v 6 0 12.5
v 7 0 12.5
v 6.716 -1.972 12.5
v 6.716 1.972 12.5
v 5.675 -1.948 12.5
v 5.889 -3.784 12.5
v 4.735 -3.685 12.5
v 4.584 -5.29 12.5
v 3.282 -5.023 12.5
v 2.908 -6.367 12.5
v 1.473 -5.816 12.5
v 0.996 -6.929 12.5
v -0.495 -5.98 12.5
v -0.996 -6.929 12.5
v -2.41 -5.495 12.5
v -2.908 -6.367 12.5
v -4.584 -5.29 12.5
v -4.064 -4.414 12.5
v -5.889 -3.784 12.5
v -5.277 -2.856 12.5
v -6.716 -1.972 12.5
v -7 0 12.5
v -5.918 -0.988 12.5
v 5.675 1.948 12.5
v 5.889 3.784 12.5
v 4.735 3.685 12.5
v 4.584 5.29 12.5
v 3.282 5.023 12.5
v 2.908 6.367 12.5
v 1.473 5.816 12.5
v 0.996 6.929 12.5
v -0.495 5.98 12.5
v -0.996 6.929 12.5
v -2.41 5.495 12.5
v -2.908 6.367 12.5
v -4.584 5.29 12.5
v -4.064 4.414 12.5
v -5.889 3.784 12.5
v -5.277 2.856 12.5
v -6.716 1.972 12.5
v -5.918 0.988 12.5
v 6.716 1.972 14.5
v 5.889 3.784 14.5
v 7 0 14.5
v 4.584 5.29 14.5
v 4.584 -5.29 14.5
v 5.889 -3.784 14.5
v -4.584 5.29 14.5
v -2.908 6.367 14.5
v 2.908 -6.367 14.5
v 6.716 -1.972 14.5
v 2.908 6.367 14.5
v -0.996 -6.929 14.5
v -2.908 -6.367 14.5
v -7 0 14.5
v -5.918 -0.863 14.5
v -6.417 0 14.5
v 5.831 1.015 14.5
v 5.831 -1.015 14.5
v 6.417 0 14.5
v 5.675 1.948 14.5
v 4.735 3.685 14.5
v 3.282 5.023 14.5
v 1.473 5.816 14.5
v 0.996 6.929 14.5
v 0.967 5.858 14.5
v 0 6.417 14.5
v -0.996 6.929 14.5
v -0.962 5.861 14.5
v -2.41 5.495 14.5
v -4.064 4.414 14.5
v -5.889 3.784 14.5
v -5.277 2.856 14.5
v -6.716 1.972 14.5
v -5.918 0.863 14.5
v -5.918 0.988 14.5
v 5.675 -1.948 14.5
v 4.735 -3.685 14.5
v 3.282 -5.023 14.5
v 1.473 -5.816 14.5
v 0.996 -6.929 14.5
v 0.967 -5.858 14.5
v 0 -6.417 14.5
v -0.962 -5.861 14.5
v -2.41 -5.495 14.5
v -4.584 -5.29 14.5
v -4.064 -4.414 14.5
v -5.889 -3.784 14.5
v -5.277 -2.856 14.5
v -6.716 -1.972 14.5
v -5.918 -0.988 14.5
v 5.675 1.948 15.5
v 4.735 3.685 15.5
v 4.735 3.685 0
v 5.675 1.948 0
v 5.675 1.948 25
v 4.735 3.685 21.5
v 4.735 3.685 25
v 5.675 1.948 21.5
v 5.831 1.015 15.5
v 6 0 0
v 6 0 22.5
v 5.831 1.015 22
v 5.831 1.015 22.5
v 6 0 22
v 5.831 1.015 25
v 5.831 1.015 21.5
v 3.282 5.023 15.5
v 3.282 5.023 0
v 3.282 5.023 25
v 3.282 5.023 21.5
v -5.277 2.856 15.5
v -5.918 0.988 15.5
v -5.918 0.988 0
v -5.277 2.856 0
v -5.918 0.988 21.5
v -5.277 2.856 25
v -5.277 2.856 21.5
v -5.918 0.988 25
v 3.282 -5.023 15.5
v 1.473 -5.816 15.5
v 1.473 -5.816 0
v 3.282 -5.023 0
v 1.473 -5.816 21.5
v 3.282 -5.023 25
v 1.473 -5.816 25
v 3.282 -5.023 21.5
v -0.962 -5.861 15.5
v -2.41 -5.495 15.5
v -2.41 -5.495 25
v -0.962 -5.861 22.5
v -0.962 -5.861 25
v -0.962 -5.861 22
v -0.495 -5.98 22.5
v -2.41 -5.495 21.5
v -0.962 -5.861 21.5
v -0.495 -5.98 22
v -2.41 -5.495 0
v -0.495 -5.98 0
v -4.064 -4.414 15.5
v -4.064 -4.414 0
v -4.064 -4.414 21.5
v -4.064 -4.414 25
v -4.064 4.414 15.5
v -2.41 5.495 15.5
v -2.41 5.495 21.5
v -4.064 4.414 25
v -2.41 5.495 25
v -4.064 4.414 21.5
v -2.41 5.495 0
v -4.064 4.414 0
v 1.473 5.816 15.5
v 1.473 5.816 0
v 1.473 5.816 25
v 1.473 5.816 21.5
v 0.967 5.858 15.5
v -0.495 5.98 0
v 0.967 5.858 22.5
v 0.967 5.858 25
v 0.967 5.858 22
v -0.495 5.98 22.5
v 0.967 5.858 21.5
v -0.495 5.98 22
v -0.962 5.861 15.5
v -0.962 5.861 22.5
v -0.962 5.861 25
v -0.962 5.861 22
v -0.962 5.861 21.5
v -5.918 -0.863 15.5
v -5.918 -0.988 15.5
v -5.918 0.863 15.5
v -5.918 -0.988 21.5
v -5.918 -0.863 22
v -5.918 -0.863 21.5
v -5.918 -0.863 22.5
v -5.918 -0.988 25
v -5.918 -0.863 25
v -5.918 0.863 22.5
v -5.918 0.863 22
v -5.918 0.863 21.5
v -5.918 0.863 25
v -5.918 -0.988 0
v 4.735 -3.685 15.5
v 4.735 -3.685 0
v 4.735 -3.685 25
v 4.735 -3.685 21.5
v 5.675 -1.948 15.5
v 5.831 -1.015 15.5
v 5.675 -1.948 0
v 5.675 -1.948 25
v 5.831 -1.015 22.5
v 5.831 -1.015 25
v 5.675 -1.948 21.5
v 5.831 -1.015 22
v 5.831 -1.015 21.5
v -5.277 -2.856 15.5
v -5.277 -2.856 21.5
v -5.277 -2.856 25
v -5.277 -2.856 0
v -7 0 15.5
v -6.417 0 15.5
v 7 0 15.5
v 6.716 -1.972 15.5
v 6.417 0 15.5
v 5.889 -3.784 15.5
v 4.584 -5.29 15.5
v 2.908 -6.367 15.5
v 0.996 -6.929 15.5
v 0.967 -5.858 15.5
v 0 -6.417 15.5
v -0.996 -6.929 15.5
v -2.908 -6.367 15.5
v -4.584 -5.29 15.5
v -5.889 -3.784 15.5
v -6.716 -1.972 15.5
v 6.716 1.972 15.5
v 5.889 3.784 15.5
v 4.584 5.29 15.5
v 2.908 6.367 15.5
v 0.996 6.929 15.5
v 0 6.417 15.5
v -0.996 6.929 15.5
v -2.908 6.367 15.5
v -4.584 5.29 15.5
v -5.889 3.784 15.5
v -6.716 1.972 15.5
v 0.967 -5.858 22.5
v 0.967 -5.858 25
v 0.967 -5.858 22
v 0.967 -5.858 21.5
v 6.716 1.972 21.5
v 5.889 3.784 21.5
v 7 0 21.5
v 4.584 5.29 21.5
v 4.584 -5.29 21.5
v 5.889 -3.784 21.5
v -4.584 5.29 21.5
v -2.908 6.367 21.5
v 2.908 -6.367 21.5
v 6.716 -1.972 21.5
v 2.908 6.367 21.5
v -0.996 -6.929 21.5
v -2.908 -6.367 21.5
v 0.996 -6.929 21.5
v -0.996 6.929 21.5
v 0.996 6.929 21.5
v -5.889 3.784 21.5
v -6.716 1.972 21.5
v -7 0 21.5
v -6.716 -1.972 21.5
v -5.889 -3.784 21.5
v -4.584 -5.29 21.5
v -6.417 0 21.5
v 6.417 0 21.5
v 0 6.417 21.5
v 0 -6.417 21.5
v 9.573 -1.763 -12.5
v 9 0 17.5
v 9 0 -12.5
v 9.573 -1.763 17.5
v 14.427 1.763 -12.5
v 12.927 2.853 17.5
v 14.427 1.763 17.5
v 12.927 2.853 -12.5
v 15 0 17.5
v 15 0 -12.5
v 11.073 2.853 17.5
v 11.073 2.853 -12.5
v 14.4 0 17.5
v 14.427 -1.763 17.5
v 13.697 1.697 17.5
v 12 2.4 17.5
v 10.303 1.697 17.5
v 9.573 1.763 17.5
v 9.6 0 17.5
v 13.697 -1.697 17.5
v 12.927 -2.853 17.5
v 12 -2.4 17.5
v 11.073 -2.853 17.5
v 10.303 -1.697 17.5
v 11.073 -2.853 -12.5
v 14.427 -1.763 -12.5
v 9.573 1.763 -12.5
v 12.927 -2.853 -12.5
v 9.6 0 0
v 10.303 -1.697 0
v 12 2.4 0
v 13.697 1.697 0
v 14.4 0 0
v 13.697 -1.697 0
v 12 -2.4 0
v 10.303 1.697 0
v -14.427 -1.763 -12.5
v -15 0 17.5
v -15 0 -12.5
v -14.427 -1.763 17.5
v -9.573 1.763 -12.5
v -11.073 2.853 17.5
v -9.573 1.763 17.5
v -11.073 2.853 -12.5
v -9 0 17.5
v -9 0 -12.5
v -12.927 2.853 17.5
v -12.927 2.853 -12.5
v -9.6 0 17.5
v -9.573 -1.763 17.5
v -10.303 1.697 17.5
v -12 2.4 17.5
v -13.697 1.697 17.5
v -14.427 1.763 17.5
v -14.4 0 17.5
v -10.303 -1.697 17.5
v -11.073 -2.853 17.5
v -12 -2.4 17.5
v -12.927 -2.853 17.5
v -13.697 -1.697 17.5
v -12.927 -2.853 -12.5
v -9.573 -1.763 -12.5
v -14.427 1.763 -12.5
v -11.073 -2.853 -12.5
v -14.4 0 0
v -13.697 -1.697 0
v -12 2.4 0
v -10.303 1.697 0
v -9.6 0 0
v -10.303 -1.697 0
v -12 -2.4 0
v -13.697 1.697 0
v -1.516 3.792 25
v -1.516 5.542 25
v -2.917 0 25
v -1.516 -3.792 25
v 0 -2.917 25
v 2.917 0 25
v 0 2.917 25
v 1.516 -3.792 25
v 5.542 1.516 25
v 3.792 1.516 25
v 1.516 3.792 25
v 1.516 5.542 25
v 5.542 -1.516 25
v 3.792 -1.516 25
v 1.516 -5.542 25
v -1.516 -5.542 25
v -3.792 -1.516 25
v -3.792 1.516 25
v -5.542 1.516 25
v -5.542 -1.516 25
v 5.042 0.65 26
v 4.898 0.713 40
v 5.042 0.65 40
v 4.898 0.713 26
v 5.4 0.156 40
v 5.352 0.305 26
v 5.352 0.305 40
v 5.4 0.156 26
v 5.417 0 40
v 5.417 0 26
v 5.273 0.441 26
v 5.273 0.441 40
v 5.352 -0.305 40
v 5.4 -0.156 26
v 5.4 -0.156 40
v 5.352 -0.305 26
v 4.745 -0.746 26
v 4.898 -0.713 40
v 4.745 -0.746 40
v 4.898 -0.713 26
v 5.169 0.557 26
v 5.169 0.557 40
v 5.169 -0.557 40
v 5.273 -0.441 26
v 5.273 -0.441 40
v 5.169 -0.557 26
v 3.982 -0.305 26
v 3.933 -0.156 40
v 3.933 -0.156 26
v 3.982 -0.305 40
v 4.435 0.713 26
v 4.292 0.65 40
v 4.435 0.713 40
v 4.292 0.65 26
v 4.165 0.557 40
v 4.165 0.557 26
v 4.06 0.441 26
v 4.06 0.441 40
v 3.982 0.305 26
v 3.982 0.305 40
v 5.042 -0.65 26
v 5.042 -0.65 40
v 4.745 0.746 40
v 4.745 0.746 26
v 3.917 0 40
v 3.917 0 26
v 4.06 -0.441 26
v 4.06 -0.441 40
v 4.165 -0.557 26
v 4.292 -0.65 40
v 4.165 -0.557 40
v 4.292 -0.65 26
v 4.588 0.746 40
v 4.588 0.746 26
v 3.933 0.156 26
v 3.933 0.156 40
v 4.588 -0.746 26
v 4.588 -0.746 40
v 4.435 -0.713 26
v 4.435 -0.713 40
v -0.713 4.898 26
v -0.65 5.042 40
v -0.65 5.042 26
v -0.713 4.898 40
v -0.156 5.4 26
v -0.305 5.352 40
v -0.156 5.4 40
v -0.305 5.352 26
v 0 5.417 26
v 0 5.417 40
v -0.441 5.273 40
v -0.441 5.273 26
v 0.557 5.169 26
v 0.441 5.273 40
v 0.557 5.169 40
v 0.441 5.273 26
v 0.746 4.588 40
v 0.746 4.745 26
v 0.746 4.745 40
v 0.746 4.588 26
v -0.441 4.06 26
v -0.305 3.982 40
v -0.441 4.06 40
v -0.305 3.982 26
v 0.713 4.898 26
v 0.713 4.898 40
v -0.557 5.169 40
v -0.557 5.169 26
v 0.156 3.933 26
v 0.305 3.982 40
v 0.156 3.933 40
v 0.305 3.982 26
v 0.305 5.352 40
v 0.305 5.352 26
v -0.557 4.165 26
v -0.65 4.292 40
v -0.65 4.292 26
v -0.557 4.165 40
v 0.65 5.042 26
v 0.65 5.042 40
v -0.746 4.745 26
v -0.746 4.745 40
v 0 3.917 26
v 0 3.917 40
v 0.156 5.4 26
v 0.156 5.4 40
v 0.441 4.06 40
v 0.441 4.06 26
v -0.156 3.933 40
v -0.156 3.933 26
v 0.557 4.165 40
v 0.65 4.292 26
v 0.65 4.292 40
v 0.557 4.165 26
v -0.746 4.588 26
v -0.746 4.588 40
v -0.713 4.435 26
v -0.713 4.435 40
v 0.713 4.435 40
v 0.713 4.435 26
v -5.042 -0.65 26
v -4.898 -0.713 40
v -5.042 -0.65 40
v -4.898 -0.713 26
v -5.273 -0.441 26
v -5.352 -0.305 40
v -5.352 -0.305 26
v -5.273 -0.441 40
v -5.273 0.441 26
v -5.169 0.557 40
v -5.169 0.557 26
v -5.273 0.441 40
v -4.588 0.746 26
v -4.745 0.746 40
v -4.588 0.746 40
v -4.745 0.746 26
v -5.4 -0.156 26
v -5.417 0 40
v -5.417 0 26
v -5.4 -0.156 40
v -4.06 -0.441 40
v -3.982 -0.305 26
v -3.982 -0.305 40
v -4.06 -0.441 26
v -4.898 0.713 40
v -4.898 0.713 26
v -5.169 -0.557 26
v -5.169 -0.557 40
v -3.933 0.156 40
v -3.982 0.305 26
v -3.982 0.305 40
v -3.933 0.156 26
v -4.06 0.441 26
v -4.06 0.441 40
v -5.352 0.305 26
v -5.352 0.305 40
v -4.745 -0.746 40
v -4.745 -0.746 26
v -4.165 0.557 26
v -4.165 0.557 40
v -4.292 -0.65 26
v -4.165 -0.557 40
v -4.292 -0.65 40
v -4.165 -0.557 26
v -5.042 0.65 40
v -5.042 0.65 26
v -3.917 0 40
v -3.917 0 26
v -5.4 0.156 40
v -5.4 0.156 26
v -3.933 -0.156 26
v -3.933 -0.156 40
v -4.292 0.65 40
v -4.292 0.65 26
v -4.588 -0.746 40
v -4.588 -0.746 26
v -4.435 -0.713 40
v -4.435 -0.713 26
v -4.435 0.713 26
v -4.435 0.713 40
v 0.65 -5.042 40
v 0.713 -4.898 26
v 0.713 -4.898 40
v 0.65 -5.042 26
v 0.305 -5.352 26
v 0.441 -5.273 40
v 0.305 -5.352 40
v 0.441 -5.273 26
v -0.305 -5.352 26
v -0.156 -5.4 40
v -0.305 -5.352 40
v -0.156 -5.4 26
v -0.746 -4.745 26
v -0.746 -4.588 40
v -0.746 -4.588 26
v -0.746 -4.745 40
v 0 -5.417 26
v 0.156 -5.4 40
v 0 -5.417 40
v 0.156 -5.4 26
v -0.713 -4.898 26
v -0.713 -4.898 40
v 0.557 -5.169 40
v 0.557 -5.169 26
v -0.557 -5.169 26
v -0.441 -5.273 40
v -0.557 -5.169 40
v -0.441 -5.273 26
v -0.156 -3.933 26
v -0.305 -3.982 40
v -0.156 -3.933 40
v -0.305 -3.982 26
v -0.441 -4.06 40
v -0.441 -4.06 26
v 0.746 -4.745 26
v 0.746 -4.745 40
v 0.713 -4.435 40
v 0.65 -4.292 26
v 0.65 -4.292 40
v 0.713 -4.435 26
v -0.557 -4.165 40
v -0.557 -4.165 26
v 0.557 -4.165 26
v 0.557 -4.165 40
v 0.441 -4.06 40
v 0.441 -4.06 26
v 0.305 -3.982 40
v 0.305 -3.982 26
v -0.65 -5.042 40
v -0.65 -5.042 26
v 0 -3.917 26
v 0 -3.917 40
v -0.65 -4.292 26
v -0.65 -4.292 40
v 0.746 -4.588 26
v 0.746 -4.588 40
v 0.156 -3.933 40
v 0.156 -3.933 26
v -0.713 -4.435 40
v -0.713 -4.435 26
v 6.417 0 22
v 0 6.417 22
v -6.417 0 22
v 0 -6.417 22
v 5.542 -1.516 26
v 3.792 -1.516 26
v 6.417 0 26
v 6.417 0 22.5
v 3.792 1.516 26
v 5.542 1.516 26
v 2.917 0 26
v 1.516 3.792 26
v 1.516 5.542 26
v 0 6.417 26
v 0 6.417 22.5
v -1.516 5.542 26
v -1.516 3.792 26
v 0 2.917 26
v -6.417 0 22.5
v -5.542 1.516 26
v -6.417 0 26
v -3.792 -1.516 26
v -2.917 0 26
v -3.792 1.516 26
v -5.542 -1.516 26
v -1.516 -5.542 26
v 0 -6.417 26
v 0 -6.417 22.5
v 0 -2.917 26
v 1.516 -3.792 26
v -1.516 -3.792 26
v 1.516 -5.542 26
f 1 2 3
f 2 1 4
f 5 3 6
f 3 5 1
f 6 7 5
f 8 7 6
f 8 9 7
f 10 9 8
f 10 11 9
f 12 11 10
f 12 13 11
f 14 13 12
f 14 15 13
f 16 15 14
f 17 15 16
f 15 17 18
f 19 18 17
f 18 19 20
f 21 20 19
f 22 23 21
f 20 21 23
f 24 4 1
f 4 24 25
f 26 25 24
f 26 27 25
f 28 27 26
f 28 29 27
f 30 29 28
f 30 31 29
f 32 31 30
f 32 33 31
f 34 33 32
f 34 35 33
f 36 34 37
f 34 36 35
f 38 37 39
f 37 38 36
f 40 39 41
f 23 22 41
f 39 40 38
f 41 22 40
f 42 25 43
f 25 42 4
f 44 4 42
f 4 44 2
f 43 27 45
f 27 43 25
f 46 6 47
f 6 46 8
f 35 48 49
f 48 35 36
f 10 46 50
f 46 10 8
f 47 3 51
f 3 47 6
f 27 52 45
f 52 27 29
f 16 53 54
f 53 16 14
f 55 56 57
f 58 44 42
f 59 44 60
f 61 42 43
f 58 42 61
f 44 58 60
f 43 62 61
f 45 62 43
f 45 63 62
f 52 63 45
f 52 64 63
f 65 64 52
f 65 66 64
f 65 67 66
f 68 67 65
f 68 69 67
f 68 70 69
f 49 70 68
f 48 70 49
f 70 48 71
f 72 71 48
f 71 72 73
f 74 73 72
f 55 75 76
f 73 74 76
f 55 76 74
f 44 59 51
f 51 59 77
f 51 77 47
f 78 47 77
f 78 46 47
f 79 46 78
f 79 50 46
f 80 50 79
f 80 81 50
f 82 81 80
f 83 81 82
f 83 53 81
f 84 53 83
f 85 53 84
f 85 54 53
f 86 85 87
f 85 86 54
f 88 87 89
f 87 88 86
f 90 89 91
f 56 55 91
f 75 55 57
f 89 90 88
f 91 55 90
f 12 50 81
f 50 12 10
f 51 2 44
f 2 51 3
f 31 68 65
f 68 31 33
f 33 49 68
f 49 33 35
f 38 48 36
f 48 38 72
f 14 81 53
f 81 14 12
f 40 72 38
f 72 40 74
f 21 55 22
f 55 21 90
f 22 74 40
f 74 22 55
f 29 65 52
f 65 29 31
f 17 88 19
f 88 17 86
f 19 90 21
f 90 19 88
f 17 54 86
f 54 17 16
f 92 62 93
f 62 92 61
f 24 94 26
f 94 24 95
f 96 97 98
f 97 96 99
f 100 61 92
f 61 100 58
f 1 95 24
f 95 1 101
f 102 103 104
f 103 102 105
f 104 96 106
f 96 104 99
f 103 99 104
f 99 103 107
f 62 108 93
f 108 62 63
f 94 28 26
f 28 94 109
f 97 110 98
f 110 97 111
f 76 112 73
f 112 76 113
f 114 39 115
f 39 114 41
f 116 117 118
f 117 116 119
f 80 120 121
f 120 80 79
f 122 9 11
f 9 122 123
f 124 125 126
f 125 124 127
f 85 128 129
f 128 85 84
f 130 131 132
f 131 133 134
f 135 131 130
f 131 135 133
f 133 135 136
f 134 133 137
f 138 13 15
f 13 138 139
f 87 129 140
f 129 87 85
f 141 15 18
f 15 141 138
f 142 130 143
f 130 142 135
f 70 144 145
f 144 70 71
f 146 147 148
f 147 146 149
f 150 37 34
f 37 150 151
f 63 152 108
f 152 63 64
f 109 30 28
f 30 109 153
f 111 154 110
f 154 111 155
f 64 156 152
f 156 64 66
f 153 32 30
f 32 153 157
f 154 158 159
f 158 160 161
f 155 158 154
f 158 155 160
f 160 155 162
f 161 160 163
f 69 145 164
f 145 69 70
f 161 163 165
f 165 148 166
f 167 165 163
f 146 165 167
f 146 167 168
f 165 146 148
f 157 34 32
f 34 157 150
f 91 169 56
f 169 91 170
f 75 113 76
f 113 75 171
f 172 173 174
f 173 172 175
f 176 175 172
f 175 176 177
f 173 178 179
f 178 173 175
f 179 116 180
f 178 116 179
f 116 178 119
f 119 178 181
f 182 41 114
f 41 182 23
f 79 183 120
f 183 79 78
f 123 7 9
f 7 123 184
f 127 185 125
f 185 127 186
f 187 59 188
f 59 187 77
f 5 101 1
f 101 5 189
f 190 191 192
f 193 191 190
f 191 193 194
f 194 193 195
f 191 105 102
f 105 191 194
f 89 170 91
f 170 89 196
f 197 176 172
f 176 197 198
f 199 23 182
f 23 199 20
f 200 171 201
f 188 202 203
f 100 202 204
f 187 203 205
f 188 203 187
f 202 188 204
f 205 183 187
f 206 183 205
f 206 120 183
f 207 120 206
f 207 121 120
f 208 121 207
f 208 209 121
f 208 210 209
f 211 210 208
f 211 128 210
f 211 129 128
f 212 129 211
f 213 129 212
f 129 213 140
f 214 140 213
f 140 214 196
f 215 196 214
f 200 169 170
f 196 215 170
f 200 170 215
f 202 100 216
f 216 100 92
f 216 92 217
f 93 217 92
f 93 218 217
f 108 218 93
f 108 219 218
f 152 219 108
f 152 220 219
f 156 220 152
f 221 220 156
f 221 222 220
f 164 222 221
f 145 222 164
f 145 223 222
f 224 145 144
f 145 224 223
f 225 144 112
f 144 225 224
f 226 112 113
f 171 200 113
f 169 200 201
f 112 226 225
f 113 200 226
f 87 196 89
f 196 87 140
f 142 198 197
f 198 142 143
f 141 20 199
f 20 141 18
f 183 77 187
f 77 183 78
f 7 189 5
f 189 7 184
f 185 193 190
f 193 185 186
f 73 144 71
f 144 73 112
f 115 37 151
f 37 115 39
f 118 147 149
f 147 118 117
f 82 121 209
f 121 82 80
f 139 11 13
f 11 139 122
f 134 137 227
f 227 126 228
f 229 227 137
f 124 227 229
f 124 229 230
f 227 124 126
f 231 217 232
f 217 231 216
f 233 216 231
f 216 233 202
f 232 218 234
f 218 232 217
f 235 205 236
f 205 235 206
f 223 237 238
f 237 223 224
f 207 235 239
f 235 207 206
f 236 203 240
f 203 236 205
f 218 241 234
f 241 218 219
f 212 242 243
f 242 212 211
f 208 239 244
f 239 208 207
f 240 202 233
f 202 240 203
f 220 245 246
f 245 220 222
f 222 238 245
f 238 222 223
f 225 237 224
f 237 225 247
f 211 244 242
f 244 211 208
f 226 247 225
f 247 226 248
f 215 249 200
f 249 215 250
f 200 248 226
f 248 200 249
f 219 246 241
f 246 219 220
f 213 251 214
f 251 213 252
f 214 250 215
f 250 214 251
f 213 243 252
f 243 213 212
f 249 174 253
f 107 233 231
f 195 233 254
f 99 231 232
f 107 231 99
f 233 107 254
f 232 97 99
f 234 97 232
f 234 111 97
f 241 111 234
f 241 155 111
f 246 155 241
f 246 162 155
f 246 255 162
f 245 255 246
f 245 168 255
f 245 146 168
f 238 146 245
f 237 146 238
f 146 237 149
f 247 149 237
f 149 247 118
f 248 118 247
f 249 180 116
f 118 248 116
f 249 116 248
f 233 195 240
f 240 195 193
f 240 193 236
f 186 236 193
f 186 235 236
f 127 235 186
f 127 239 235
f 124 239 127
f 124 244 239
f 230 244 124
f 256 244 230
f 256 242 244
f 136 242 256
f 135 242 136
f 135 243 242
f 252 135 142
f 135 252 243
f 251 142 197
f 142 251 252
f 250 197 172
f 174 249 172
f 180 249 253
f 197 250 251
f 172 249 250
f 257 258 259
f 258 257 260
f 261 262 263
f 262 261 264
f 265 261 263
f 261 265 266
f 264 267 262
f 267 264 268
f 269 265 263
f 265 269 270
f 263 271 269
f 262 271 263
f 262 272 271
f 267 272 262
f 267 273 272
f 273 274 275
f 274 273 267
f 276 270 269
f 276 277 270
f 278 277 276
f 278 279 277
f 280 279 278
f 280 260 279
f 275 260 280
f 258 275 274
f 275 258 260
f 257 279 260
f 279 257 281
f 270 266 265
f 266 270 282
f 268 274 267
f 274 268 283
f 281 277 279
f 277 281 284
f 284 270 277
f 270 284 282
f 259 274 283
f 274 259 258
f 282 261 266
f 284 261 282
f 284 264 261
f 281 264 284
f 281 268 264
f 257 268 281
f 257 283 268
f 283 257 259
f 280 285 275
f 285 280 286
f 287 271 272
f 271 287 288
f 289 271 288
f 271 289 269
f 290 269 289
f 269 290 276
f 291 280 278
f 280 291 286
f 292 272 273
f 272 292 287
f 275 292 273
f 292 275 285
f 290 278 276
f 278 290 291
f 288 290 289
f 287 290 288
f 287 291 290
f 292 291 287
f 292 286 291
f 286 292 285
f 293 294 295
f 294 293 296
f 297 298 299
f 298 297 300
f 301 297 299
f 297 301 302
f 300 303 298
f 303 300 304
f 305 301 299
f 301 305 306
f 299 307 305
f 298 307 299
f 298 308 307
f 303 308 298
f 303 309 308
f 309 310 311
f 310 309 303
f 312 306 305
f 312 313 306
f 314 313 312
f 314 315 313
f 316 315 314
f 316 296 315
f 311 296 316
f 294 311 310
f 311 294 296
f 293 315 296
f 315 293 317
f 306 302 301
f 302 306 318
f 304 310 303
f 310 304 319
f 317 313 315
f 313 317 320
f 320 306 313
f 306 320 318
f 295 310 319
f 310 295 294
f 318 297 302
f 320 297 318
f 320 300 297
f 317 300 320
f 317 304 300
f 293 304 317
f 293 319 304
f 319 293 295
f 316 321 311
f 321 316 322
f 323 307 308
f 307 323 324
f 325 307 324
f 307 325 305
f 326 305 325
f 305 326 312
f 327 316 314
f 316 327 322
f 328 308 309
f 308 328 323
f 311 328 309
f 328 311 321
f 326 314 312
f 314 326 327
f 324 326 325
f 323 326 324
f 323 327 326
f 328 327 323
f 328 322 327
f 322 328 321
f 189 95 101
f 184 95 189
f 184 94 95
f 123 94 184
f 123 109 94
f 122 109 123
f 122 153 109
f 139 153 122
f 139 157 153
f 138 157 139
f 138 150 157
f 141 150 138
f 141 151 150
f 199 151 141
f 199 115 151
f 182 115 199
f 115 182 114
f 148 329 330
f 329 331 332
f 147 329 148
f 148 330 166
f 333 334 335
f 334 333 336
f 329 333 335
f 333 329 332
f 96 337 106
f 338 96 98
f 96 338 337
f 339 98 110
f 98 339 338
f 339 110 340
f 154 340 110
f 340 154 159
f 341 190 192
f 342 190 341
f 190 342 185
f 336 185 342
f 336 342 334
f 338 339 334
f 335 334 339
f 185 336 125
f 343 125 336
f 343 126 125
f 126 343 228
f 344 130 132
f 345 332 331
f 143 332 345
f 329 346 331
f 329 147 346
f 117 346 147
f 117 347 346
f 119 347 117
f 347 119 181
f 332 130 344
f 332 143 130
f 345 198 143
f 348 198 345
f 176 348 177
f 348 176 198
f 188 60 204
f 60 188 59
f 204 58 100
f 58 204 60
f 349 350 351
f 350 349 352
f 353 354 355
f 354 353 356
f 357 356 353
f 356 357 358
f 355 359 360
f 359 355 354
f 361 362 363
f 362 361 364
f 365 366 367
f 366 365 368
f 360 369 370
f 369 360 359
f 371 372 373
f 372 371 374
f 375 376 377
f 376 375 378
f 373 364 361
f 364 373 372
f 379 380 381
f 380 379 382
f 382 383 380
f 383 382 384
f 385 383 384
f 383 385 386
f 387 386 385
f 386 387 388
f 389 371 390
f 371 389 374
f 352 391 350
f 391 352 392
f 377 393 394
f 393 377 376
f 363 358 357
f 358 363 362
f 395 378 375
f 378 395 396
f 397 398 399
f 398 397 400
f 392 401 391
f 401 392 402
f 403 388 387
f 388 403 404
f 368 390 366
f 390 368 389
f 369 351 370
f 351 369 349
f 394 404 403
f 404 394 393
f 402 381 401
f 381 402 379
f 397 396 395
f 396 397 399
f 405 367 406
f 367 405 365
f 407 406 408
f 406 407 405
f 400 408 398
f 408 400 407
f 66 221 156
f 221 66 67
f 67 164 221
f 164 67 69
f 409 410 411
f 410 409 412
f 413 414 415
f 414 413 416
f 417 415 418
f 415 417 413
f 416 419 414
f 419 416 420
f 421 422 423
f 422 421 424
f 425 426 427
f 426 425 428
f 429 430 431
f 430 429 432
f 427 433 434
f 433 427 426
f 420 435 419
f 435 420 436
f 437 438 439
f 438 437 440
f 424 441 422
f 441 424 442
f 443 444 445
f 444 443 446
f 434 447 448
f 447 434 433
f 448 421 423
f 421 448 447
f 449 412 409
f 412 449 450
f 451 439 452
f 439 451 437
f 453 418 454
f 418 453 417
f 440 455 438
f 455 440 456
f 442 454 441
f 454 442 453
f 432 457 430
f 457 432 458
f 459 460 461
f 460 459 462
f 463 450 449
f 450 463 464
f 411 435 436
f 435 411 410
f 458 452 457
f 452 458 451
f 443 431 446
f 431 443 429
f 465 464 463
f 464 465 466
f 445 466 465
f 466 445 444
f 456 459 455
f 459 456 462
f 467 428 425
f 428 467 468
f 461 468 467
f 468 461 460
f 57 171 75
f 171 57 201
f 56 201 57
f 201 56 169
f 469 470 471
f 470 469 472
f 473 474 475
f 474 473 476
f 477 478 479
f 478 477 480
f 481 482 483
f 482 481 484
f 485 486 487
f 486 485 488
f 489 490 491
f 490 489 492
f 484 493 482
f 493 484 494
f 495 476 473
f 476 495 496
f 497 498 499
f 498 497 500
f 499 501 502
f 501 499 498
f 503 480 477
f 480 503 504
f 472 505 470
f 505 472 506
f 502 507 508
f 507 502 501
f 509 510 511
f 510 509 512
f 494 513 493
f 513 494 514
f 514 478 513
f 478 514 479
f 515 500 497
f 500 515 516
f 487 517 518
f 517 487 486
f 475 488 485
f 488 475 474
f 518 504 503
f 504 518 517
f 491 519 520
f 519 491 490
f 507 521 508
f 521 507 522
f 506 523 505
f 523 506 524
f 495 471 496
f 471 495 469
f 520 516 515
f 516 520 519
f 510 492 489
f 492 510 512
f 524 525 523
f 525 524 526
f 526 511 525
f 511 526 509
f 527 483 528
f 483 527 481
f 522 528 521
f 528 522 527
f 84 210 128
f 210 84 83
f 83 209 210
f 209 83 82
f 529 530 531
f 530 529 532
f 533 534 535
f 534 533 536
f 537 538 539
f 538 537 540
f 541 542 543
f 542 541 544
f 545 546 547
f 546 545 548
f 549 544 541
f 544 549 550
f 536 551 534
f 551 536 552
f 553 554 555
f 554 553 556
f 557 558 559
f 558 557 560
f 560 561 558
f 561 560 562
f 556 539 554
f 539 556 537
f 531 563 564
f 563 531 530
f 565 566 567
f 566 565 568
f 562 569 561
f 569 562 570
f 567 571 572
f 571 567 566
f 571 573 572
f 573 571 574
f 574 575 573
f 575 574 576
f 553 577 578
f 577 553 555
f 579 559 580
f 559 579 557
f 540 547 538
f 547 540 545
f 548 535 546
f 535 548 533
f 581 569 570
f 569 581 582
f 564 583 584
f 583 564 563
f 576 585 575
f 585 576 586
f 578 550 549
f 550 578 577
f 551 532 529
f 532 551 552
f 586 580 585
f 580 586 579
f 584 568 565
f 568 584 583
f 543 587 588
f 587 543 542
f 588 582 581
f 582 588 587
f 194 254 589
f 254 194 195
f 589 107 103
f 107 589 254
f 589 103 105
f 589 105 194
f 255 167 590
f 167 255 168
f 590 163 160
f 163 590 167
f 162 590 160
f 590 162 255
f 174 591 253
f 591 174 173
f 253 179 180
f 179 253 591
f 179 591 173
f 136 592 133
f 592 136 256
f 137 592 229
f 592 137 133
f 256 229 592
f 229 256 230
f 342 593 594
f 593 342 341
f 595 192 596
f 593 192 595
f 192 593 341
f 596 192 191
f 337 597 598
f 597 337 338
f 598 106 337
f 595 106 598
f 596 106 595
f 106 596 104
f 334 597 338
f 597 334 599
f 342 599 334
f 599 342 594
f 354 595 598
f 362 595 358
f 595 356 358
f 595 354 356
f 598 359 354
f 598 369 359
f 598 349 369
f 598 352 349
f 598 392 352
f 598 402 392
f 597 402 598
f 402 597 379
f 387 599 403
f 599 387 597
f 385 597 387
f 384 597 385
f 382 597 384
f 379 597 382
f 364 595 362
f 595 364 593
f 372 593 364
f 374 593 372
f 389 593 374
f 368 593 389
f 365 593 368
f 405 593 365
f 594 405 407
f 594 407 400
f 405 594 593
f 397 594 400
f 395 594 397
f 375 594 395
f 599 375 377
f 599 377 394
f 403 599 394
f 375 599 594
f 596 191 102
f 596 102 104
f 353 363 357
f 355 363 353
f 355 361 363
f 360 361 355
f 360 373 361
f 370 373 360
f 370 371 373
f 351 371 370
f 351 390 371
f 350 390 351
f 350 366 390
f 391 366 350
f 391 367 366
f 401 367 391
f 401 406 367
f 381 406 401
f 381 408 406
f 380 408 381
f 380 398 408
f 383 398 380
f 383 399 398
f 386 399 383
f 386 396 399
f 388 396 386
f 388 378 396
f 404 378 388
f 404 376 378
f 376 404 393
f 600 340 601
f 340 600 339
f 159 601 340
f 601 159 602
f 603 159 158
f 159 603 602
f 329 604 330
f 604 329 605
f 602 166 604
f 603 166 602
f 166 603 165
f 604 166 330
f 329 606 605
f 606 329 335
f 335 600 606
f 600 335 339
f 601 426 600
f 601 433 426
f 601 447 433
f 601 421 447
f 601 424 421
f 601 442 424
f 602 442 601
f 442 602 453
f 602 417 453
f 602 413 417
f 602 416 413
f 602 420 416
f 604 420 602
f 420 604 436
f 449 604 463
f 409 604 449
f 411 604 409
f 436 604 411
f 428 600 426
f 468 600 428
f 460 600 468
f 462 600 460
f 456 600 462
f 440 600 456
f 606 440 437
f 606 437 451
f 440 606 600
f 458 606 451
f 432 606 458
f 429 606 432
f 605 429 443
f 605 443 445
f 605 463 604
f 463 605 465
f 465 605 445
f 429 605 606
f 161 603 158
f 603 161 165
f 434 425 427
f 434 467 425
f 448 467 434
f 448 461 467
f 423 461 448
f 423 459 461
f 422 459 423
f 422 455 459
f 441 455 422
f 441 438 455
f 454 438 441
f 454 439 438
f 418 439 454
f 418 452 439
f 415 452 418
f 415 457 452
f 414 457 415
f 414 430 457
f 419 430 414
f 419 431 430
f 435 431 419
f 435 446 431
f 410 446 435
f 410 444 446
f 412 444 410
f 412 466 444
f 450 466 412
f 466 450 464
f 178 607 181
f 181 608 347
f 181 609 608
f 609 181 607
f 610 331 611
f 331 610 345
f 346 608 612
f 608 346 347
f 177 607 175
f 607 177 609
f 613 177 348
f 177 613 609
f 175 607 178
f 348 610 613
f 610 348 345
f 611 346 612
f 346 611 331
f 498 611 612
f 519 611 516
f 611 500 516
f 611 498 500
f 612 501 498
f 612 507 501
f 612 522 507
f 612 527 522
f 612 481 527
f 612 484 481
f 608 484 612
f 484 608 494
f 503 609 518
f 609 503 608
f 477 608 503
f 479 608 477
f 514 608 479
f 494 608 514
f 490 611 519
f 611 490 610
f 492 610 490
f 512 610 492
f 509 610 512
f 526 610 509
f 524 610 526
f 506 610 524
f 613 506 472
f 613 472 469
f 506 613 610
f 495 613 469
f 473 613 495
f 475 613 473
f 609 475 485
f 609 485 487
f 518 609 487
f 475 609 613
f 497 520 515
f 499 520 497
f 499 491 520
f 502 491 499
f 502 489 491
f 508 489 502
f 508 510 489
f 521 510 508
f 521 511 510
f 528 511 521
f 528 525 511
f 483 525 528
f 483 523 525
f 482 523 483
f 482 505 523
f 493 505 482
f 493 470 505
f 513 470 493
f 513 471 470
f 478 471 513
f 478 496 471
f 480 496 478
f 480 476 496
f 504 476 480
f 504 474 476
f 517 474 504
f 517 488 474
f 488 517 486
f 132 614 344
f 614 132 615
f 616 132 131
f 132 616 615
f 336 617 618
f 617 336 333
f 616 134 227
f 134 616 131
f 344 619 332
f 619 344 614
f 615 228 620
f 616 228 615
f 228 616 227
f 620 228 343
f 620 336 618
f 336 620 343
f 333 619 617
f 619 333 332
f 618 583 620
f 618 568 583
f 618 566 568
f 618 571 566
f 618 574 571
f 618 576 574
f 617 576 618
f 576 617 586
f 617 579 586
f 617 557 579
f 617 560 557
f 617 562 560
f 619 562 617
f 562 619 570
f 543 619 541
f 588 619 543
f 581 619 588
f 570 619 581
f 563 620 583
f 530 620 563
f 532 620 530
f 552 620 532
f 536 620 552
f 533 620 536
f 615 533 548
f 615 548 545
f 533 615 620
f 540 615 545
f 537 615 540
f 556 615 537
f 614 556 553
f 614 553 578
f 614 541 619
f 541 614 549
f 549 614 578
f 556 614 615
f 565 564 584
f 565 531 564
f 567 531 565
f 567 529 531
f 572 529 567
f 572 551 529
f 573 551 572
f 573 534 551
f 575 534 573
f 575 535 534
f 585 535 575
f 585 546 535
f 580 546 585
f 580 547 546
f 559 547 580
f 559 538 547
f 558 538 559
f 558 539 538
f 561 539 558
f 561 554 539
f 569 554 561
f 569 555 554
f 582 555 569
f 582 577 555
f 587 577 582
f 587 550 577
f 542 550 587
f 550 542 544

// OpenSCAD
// Basic dimensions
shaft_diameter = 12; // Adjusted for identical dimensions
shaft_length = 25; // Adjusted for original length
spacer_thickness = 1; // Reduced thickness for delicate structure
flange_thickness = 2; // Reduced thickness as per original model
flange_diameter = 14; // Adjusted diameter for original appearance
nut_size = 3.5; // Matching original nut size
bolt_length = 14; // Adjusted length to match original bolts
bolt_diameter = 1.5; // Adjusted for thinner bolts
extension_length = 5; // Added extension for input shaft

module central_shaft() {
    // Adjusted central shaft for proper structural integrity and uniformity
    cylinder(h=shaft_length, d=shaft_diameter);
}

module input_shaft() {
    // Corrected input shaft by adding extension and refining hollow structure
    translate([shaft_diameter, 0, -shaft_length / 2])
        difference() {
            cylinder(h=shaft_length + extension_length, d=shaft_diameter / 2);
            translate([0, 0, shaft_length / 2])
                cylinder(h=shaft_length, d=shaft_diameter / 2.5);
        }
}

module output_shaft() {
    // Corrected output shaft dimensions and improved hollow coupling
    translate([-shaft_diameter, 0, -shaft_length / 2])
        difference() {
            cylinder(h=shaft_length + extension_length, d=shaft_diameter / 2);
            translate([0, 0, shaft_length / 2])
                cylinder(h=shaft_length, d=shaft_diameter / 2.5);
        }
}

module spacer_ring() {
    // Reduced thickness and centered spacer ring
    difference() {
        cylinder(h=spacer_thickness, d=shaft_diameter);
        cylinder(h=spacer_thickness, d=shaft_diameter - 2);
    }
}

module flange_plate() {
    // Added 4 thinner flange plates with proper drilled holes
    difference() {
        cylinder(h=flange_thickness, d=flange_diameter);
        for (angle = [0, 90, 180, 270])
            rotate([0, 0, angle])
                translate([flange_diameter / 3, 0, 0])
                    cylinder(h=flange_thickness + 0.5, d=bolt_diameter + 1);
    }
}

module hexagonal_nut() {
    // Adjusted for larger nuts matching original model
    cylinder(h=nut_size, d=nut_size, $fn=6);
}

module bolt() {
    // Adjusted for thinner bolts and refined threading
    cylinder(h=bolt_length, d=bolt_diameter, $fn=30);
}

module translated_components() {
    // Assemble components and added additional flange plates
    central_shaft();
    translate([0, 0, shaft_length / 2])
        flange_plate();
    translate([0, 0, shaft_length / 2 + flange_thickness])
        spacer_ring();
    translate([0, 0, shaft_length / 2 + flange_thickness + spacer_thickness])
        flange_plate();
    translate([0, 0, shaft_length / 2 + 2 * flange_thickness + spacer_thickness])
        flange_plate();
    translate([0, 0, shaft_length / 2 + 3 * flange_thickness + spacer_thickness])
        flange_plate();
    input_shaft();
    output_shaft();
}

// Assembling nuts and bolts to align with flange plates

module nuts_bolts_assembly() {
    for (flange_position = [1, 3, 5])
        for (angle = [0, 90, 180, 270]) {
            rotate([0, 0, angle])
                translate([flange_diameter / 3, 0, shaft_length / 2 + flange_position * flange_thickness])
                    hexagonal_nut();
            rotate([0, 0, angle])
                translate([flange_diameter / 3, 0, shaft_length / 2 + flange_position * flange_thickness + nut_size])
                    bolt();
        }
}

translated_components();
nuts_bolts_assembly();
